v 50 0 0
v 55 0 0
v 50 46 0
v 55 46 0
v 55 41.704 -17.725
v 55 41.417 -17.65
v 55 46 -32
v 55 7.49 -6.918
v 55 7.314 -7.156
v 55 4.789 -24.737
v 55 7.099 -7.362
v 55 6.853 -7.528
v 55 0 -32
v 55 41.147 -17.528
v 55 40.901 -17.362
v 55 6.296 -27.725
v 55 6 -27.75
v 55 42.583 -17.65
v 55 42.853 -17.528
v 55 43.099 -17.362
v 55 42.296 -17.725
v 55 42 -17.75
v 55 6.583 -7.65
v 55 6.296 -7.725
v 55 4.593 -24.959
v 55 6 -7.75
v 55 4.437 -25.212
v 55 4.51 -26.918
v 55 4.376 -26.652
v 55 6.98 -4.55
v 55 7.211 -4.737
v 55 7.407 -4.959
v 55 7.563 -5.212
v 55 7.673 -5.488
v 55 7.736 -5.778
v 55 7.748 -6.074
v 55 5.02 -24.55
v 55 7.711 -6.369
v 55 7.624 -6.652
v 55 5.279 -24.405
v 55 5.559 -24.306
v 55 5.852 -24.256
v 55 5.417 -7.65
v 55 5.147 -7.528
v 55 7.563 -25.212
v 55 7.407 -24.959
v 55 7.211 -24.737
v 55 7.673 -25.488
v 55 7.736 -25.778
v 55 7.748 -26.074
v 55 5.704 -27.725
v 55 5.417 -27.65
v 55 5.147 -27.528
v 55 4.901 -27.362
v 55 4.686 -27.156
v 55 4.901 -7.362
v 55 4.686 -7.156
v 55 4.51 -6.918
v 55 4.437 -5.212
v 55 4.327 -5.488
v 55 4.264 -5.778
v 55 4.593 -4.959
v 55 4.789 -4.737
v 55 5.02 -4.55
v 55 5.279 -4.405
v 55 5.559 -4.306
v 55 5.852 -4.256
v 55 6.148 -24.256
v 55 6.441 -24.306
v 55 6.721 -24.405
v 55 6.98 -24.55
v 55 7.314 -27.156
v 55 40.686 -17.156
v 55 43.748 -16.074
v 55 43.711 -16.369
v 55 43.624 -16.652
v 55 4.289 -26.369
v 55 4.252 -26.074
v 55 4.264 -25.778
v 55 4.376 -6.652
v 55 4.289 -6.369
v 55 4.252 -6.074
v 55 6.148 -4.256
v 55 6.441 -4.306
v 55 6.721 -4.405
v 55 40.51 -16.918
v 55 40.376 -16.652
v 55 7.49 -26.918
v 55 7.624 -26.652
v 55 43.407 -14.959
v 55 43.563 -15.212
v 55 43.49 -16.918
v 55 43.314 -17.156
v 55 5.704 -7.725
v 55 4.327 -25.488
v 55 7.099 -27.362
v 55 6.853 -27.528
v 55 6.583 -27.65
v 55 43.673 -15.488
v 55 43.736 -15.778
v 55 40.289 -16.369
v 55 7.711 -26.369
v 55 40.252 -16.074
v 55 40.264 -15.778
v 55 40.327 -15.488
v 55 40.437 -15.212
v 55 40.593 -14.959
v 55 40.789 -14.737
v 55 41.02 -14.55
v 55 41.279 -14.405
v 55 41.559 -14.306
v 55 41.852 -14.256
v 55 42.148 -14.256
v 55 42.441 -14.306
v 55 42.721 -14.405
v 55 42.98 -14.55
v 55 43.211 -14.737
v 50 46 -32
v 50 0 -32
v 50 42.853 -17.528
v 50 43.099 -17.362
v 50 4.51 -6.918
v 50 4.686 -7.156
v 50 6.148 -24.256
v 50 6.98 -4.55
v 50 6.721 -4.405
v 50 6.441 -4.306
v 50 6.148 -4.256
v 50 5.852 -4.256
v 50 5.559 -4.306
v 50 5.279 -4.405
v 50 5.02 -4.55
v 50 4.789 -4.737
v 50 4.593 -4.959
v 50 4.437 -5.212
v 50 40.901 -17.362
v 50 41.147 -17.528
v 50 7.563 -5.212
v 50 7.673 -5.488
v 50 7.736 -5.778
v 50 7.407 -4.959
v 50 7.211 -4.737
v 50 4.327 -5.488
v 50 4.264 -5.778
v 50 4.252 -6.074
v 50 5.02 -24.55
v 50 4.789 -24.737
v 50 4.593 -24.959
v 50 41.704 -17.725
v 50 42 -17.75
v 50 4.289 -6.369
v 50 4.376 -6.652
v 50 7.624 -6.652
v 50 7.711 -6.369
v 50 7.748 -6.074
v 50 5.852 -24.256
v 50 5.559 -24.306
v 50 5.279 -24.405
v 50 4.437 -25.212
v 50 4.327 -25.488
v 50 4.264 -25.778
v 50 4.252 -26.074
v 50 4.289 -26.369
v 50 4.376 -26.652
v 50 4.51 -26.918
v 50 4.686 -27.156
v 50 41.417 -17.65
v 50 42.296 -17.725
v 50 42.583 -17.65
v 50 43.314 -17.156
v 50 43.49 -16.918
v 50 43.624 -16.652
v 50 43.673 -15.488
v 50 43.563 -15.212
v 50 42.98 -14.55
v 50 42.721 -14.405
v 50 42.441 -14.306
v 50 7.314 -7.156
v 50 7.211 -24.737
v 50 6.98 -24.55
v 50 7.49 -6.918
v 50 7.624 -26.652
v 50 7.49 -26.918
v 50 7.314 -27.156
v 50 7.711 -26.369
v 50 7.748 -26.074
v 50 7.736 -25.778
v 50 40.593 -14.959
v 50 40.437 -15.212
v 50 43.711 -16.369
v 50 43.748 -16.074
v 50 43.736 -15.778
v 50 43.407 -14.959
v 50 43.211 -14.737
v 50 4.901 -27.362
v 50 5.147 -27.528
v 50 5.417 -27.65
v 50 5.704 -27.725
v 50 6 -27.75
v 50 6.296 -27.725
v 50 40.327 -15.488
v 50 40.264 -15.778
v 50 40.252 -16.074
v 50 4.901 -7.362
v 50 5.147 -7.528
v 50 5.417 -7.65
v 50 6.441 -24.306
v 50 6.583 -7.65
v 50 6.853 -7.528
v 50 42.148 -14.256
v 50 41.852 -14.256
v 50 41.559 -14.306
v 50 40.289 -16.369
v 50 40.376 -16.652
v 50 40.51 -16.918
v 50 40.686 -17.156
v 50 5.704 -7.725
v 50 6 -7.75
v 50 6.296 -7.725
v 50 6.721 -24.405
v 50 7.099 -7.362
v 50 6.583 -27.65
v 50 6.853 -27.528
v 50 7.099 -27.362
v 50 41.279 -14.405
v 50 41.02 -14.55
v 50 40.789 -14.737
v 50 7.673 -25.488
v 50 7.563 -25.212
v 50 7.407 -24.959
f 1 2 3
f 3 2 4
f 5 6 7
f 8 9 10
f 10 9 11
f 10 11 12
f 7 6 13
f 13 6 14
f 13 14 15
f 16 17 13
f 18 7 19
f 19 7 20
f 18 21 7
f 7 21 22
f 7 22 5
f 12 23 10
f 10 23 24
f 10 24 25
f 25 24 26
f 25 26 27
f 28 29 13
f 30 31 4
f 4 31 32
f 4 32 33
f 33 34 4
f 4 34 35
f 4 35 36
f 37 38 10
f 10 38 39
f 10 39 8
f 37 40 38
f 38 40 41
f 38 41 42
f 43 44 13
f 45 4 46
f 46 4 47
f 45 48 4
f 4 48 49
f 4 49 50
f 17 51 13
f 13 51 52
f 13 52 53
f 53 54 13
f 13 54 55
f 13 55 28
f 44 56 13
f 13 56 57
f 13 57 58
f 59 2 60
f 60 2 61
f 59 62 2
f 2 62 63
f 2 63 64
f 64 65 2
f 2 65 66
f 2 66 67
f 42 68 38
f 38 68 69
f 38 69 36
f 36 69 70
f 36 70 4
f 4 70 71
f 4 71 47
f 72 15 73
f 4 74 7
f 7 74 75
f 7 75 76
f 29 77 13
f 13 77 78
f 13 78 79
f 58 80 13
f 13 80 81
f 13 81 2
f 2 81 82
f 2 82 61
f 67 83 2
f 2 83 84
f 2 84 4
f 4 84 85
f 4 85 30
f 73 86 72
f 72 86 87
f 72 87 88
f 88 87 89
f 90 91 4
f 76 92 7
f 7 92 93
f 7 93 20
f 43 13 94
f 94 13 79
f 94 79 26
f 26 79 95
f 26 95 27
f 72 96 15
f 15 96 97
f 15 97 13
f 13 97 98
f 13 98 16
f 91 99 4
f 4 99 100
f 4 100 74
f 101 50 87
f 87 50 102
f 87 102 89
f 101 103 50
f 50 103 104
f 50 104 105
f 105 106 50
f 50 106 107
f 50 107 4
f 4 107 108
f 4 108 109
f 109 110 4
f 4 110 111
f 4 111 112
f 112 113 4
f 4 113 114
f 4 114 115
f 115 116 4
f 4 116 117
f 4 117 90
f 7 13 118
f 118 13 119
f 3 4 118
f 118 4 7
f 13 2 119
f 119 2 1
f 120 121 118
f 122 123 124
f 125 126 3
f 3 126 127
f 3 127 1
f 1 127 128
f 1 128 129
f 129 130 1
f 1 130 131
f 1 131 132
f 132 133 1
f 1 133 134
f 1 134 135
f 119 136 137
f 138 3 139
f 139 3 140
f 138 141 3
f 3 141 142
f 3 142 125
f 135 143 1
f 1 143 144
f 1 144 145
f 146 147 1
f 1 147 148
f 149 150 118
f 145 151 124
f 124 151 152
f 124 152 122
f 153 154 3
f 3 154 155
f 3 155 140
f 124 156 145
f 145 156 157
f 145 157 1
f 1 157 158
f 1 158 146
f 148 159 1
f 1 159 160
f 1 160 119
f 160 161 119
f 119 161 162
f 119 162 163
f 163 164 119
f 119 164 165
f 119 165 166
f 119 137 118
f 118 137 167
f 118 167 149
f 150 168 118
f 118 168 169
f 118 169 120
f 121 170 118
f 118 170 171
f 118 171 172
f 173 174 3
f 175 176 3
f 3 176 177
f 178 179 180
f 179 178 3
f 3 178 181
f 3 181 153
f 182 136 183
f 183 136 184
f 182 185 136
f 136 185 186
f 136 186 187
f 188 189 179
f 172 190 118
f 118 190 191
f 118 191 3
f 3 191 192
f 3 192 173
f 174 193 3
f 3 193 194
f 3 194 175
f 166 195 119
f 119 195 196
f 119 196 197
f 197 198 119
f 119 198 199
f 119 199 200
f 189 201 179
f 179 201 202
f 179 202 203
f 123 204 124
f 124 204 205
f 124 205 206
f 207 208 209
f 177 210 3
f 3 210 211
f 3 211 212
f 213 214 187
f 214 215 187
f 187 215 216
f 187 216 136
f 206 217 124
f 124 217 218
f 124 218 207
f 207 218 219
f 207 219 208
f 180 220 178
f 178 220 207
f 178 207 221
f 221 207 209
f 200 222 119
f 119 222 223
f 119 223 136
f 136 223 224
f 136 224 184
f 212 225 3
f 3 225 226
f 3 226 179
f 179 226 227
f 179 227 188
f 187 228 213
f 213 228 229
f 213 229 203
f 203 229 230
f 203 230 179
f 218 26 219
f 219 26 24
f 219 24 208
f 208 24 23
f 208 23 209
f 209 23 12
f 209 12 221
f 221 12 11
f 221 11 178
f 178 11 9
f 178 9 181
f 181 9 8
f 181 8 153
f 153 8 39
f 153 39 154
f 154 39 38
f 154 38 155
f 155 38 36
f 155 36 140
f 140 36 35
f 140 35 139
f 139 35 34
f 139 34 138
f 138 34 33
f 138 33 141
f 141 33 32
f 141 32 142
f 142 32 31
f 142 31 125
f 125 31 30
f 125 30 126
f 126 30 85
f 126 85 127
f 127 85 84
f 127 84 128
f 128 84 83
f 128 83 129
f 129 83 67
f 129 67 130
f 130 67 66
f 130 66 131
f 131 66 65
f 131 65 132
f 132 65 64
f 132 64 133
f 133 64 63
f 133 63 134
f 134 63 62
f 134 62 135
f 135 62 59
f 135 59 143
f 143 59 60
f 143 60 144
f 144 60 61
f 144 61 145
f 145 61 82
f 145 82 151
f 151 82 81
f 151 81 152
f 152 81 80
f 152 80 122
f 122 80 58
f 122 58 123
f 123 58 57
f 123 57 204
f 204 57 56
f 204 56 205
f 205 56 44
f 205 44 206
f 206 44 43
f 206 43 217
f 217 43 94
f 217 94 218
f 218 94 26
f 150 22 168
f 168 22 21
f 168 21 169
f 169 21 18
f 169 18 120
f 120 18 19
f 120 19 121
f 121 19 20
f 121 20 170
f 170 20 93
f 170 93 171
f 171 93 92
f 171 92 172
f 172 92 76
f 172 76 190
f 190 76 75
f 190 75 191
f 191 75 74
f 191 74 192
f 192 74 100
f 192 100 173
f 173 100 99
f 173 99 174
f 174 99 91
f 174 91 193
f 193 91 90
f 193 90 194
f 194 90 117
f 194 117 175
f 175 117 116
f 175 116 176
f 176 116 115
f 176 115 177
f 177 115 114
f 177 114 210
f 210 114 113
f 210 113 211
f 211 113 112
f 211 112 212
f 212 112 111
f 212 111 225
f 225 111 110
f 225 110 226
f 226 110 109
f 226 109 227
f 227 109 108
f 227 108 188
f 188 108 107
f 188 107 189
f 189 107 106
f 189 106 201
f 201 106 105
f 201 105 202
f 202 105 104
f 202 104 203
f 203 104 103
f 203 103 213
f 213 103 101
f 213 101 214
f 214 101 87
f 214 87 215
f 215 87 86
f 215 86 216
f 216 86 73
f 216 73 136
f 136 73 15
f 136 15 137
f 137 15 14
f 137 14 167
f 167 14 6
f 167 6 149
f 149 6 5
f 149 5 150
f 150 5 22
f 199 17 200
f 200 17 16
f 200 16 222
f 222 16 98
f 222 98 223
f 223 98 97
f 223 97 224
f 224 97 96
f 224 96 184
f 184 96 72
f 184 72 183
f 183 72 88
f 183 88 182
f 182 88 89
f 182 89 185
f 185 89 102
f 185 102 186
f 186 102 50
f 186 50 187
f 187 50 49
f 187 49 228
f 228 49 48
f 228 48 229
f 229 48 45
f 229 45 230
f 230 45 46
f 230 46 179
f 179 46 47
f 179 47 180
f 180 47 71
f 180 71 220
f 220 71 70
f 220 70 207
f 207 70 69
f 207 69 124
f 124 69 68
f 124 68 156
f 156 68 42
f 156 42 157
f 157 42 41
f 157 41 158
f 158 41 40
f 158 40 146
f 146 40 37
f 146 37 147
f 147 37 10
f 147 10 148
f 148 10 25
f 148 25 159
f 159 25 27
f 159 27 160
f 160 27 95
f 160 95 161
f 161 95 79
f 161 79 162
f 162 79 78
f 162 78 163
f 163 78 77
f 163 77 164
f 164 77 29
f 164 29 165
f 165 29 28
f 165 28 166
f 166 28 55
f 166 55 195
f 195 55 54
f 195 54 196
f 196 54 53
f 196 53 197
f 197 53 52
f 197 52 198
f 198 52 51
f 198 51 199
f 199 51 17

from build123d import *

# Parameters (mm, degrees)
SKETCH1_W           = 55
SKETCH1_H           = 32
BOSS_EXTRUDE1_DEPTH = 46
SKETCH2_W           = 45
SKETCH2_H           = 32
CUT_EXTRUDE1_DEPTH  = 45
SKETCH3_R           = 1.75
CUT_EXTRUDE2_DEPTH  = 47
SKETCH4_R           = 1.75
CUT_EXTRUDE3_DEPTH  = 56
SKETCH7_W           = 32
SKETCH7_H           = 46
CUT_EXTRUDE5_DEPTH  = 50


with BuildPart() as part:
    # Sketch1 → Boss-Extrude1 (new body)
    with BuildSketch(Plane(origin=(0, 0, 0), x_dir=(1, 0, 0), z_dir=(0, 1, 0))):
        with Locations((27.5, 16)):
            Rectangle(SKETCH1_W, SKETCH1_H)
    extrude(amount=BOSS_EXTRUDE1_DEPTH)

    # Sketch2 → Cut-Extrude1 (cut)
    with BuildSketch(Plane.XZ):
        with Locations((27.5, -16)):
            Rectangle(SKETCH2_W, SKETCH2_H)
    extrude(amount=-CUT_EXTRUDE1_DEPTH, mode=Mode.SUBTRACT)

    # Sketch3 → Cut-Extrude2 (cut, through all)
    with BuildSketch(Plane(origin=(0, 46, 0), x_dir=(1, 0, 0), z_dir=(0, 1, 0))):
        with Locations((43.5, 26)):
            Circle(SKETCH3_R)
        with Locations((43.5, 6)):
            Circle(SKETCH3_R)
        with Locations((11.5, 26)):
            Circle(SKETCH3_R)
        with Locations((11.5, 6)):
            Circle(SKETCH3_R)
    extrude(amount=-CUT_EXTRUDE2_DEPTH, mode=Mode.SUBTRACT)

    # Sketch4 → Cut-Extrude3 (cut, through all)
    with BuildSketch(Plane(origin=(55, 0, 0), x_dir=(0, 0, -1), z_dir=(1, 0, 0))):
        with Locations((6, 6)):
            Circle(SKETCH4_R)
        with Locations((26, 6)):
            Circle(SKETCH4_R)
        with Locations((16, 42)):
            Circle(SKETCH4_R)
    extrude(amount=-CUT_EXTRUDE3_DEPTH, mode=Mode.SUBTRACT)

    # Sketch7 → Cut-Extrude5 (cut)
    with BuildSketch(Plane.ZY):
        with Locations((-16, 23)):
            Rectangle(SKETCH7_W, SKETCH7_H)
    extrude(amount=-CUT_EXTRUDE5_DEPTH, mode=Mode.SUBTRACT)


solid = part.part
